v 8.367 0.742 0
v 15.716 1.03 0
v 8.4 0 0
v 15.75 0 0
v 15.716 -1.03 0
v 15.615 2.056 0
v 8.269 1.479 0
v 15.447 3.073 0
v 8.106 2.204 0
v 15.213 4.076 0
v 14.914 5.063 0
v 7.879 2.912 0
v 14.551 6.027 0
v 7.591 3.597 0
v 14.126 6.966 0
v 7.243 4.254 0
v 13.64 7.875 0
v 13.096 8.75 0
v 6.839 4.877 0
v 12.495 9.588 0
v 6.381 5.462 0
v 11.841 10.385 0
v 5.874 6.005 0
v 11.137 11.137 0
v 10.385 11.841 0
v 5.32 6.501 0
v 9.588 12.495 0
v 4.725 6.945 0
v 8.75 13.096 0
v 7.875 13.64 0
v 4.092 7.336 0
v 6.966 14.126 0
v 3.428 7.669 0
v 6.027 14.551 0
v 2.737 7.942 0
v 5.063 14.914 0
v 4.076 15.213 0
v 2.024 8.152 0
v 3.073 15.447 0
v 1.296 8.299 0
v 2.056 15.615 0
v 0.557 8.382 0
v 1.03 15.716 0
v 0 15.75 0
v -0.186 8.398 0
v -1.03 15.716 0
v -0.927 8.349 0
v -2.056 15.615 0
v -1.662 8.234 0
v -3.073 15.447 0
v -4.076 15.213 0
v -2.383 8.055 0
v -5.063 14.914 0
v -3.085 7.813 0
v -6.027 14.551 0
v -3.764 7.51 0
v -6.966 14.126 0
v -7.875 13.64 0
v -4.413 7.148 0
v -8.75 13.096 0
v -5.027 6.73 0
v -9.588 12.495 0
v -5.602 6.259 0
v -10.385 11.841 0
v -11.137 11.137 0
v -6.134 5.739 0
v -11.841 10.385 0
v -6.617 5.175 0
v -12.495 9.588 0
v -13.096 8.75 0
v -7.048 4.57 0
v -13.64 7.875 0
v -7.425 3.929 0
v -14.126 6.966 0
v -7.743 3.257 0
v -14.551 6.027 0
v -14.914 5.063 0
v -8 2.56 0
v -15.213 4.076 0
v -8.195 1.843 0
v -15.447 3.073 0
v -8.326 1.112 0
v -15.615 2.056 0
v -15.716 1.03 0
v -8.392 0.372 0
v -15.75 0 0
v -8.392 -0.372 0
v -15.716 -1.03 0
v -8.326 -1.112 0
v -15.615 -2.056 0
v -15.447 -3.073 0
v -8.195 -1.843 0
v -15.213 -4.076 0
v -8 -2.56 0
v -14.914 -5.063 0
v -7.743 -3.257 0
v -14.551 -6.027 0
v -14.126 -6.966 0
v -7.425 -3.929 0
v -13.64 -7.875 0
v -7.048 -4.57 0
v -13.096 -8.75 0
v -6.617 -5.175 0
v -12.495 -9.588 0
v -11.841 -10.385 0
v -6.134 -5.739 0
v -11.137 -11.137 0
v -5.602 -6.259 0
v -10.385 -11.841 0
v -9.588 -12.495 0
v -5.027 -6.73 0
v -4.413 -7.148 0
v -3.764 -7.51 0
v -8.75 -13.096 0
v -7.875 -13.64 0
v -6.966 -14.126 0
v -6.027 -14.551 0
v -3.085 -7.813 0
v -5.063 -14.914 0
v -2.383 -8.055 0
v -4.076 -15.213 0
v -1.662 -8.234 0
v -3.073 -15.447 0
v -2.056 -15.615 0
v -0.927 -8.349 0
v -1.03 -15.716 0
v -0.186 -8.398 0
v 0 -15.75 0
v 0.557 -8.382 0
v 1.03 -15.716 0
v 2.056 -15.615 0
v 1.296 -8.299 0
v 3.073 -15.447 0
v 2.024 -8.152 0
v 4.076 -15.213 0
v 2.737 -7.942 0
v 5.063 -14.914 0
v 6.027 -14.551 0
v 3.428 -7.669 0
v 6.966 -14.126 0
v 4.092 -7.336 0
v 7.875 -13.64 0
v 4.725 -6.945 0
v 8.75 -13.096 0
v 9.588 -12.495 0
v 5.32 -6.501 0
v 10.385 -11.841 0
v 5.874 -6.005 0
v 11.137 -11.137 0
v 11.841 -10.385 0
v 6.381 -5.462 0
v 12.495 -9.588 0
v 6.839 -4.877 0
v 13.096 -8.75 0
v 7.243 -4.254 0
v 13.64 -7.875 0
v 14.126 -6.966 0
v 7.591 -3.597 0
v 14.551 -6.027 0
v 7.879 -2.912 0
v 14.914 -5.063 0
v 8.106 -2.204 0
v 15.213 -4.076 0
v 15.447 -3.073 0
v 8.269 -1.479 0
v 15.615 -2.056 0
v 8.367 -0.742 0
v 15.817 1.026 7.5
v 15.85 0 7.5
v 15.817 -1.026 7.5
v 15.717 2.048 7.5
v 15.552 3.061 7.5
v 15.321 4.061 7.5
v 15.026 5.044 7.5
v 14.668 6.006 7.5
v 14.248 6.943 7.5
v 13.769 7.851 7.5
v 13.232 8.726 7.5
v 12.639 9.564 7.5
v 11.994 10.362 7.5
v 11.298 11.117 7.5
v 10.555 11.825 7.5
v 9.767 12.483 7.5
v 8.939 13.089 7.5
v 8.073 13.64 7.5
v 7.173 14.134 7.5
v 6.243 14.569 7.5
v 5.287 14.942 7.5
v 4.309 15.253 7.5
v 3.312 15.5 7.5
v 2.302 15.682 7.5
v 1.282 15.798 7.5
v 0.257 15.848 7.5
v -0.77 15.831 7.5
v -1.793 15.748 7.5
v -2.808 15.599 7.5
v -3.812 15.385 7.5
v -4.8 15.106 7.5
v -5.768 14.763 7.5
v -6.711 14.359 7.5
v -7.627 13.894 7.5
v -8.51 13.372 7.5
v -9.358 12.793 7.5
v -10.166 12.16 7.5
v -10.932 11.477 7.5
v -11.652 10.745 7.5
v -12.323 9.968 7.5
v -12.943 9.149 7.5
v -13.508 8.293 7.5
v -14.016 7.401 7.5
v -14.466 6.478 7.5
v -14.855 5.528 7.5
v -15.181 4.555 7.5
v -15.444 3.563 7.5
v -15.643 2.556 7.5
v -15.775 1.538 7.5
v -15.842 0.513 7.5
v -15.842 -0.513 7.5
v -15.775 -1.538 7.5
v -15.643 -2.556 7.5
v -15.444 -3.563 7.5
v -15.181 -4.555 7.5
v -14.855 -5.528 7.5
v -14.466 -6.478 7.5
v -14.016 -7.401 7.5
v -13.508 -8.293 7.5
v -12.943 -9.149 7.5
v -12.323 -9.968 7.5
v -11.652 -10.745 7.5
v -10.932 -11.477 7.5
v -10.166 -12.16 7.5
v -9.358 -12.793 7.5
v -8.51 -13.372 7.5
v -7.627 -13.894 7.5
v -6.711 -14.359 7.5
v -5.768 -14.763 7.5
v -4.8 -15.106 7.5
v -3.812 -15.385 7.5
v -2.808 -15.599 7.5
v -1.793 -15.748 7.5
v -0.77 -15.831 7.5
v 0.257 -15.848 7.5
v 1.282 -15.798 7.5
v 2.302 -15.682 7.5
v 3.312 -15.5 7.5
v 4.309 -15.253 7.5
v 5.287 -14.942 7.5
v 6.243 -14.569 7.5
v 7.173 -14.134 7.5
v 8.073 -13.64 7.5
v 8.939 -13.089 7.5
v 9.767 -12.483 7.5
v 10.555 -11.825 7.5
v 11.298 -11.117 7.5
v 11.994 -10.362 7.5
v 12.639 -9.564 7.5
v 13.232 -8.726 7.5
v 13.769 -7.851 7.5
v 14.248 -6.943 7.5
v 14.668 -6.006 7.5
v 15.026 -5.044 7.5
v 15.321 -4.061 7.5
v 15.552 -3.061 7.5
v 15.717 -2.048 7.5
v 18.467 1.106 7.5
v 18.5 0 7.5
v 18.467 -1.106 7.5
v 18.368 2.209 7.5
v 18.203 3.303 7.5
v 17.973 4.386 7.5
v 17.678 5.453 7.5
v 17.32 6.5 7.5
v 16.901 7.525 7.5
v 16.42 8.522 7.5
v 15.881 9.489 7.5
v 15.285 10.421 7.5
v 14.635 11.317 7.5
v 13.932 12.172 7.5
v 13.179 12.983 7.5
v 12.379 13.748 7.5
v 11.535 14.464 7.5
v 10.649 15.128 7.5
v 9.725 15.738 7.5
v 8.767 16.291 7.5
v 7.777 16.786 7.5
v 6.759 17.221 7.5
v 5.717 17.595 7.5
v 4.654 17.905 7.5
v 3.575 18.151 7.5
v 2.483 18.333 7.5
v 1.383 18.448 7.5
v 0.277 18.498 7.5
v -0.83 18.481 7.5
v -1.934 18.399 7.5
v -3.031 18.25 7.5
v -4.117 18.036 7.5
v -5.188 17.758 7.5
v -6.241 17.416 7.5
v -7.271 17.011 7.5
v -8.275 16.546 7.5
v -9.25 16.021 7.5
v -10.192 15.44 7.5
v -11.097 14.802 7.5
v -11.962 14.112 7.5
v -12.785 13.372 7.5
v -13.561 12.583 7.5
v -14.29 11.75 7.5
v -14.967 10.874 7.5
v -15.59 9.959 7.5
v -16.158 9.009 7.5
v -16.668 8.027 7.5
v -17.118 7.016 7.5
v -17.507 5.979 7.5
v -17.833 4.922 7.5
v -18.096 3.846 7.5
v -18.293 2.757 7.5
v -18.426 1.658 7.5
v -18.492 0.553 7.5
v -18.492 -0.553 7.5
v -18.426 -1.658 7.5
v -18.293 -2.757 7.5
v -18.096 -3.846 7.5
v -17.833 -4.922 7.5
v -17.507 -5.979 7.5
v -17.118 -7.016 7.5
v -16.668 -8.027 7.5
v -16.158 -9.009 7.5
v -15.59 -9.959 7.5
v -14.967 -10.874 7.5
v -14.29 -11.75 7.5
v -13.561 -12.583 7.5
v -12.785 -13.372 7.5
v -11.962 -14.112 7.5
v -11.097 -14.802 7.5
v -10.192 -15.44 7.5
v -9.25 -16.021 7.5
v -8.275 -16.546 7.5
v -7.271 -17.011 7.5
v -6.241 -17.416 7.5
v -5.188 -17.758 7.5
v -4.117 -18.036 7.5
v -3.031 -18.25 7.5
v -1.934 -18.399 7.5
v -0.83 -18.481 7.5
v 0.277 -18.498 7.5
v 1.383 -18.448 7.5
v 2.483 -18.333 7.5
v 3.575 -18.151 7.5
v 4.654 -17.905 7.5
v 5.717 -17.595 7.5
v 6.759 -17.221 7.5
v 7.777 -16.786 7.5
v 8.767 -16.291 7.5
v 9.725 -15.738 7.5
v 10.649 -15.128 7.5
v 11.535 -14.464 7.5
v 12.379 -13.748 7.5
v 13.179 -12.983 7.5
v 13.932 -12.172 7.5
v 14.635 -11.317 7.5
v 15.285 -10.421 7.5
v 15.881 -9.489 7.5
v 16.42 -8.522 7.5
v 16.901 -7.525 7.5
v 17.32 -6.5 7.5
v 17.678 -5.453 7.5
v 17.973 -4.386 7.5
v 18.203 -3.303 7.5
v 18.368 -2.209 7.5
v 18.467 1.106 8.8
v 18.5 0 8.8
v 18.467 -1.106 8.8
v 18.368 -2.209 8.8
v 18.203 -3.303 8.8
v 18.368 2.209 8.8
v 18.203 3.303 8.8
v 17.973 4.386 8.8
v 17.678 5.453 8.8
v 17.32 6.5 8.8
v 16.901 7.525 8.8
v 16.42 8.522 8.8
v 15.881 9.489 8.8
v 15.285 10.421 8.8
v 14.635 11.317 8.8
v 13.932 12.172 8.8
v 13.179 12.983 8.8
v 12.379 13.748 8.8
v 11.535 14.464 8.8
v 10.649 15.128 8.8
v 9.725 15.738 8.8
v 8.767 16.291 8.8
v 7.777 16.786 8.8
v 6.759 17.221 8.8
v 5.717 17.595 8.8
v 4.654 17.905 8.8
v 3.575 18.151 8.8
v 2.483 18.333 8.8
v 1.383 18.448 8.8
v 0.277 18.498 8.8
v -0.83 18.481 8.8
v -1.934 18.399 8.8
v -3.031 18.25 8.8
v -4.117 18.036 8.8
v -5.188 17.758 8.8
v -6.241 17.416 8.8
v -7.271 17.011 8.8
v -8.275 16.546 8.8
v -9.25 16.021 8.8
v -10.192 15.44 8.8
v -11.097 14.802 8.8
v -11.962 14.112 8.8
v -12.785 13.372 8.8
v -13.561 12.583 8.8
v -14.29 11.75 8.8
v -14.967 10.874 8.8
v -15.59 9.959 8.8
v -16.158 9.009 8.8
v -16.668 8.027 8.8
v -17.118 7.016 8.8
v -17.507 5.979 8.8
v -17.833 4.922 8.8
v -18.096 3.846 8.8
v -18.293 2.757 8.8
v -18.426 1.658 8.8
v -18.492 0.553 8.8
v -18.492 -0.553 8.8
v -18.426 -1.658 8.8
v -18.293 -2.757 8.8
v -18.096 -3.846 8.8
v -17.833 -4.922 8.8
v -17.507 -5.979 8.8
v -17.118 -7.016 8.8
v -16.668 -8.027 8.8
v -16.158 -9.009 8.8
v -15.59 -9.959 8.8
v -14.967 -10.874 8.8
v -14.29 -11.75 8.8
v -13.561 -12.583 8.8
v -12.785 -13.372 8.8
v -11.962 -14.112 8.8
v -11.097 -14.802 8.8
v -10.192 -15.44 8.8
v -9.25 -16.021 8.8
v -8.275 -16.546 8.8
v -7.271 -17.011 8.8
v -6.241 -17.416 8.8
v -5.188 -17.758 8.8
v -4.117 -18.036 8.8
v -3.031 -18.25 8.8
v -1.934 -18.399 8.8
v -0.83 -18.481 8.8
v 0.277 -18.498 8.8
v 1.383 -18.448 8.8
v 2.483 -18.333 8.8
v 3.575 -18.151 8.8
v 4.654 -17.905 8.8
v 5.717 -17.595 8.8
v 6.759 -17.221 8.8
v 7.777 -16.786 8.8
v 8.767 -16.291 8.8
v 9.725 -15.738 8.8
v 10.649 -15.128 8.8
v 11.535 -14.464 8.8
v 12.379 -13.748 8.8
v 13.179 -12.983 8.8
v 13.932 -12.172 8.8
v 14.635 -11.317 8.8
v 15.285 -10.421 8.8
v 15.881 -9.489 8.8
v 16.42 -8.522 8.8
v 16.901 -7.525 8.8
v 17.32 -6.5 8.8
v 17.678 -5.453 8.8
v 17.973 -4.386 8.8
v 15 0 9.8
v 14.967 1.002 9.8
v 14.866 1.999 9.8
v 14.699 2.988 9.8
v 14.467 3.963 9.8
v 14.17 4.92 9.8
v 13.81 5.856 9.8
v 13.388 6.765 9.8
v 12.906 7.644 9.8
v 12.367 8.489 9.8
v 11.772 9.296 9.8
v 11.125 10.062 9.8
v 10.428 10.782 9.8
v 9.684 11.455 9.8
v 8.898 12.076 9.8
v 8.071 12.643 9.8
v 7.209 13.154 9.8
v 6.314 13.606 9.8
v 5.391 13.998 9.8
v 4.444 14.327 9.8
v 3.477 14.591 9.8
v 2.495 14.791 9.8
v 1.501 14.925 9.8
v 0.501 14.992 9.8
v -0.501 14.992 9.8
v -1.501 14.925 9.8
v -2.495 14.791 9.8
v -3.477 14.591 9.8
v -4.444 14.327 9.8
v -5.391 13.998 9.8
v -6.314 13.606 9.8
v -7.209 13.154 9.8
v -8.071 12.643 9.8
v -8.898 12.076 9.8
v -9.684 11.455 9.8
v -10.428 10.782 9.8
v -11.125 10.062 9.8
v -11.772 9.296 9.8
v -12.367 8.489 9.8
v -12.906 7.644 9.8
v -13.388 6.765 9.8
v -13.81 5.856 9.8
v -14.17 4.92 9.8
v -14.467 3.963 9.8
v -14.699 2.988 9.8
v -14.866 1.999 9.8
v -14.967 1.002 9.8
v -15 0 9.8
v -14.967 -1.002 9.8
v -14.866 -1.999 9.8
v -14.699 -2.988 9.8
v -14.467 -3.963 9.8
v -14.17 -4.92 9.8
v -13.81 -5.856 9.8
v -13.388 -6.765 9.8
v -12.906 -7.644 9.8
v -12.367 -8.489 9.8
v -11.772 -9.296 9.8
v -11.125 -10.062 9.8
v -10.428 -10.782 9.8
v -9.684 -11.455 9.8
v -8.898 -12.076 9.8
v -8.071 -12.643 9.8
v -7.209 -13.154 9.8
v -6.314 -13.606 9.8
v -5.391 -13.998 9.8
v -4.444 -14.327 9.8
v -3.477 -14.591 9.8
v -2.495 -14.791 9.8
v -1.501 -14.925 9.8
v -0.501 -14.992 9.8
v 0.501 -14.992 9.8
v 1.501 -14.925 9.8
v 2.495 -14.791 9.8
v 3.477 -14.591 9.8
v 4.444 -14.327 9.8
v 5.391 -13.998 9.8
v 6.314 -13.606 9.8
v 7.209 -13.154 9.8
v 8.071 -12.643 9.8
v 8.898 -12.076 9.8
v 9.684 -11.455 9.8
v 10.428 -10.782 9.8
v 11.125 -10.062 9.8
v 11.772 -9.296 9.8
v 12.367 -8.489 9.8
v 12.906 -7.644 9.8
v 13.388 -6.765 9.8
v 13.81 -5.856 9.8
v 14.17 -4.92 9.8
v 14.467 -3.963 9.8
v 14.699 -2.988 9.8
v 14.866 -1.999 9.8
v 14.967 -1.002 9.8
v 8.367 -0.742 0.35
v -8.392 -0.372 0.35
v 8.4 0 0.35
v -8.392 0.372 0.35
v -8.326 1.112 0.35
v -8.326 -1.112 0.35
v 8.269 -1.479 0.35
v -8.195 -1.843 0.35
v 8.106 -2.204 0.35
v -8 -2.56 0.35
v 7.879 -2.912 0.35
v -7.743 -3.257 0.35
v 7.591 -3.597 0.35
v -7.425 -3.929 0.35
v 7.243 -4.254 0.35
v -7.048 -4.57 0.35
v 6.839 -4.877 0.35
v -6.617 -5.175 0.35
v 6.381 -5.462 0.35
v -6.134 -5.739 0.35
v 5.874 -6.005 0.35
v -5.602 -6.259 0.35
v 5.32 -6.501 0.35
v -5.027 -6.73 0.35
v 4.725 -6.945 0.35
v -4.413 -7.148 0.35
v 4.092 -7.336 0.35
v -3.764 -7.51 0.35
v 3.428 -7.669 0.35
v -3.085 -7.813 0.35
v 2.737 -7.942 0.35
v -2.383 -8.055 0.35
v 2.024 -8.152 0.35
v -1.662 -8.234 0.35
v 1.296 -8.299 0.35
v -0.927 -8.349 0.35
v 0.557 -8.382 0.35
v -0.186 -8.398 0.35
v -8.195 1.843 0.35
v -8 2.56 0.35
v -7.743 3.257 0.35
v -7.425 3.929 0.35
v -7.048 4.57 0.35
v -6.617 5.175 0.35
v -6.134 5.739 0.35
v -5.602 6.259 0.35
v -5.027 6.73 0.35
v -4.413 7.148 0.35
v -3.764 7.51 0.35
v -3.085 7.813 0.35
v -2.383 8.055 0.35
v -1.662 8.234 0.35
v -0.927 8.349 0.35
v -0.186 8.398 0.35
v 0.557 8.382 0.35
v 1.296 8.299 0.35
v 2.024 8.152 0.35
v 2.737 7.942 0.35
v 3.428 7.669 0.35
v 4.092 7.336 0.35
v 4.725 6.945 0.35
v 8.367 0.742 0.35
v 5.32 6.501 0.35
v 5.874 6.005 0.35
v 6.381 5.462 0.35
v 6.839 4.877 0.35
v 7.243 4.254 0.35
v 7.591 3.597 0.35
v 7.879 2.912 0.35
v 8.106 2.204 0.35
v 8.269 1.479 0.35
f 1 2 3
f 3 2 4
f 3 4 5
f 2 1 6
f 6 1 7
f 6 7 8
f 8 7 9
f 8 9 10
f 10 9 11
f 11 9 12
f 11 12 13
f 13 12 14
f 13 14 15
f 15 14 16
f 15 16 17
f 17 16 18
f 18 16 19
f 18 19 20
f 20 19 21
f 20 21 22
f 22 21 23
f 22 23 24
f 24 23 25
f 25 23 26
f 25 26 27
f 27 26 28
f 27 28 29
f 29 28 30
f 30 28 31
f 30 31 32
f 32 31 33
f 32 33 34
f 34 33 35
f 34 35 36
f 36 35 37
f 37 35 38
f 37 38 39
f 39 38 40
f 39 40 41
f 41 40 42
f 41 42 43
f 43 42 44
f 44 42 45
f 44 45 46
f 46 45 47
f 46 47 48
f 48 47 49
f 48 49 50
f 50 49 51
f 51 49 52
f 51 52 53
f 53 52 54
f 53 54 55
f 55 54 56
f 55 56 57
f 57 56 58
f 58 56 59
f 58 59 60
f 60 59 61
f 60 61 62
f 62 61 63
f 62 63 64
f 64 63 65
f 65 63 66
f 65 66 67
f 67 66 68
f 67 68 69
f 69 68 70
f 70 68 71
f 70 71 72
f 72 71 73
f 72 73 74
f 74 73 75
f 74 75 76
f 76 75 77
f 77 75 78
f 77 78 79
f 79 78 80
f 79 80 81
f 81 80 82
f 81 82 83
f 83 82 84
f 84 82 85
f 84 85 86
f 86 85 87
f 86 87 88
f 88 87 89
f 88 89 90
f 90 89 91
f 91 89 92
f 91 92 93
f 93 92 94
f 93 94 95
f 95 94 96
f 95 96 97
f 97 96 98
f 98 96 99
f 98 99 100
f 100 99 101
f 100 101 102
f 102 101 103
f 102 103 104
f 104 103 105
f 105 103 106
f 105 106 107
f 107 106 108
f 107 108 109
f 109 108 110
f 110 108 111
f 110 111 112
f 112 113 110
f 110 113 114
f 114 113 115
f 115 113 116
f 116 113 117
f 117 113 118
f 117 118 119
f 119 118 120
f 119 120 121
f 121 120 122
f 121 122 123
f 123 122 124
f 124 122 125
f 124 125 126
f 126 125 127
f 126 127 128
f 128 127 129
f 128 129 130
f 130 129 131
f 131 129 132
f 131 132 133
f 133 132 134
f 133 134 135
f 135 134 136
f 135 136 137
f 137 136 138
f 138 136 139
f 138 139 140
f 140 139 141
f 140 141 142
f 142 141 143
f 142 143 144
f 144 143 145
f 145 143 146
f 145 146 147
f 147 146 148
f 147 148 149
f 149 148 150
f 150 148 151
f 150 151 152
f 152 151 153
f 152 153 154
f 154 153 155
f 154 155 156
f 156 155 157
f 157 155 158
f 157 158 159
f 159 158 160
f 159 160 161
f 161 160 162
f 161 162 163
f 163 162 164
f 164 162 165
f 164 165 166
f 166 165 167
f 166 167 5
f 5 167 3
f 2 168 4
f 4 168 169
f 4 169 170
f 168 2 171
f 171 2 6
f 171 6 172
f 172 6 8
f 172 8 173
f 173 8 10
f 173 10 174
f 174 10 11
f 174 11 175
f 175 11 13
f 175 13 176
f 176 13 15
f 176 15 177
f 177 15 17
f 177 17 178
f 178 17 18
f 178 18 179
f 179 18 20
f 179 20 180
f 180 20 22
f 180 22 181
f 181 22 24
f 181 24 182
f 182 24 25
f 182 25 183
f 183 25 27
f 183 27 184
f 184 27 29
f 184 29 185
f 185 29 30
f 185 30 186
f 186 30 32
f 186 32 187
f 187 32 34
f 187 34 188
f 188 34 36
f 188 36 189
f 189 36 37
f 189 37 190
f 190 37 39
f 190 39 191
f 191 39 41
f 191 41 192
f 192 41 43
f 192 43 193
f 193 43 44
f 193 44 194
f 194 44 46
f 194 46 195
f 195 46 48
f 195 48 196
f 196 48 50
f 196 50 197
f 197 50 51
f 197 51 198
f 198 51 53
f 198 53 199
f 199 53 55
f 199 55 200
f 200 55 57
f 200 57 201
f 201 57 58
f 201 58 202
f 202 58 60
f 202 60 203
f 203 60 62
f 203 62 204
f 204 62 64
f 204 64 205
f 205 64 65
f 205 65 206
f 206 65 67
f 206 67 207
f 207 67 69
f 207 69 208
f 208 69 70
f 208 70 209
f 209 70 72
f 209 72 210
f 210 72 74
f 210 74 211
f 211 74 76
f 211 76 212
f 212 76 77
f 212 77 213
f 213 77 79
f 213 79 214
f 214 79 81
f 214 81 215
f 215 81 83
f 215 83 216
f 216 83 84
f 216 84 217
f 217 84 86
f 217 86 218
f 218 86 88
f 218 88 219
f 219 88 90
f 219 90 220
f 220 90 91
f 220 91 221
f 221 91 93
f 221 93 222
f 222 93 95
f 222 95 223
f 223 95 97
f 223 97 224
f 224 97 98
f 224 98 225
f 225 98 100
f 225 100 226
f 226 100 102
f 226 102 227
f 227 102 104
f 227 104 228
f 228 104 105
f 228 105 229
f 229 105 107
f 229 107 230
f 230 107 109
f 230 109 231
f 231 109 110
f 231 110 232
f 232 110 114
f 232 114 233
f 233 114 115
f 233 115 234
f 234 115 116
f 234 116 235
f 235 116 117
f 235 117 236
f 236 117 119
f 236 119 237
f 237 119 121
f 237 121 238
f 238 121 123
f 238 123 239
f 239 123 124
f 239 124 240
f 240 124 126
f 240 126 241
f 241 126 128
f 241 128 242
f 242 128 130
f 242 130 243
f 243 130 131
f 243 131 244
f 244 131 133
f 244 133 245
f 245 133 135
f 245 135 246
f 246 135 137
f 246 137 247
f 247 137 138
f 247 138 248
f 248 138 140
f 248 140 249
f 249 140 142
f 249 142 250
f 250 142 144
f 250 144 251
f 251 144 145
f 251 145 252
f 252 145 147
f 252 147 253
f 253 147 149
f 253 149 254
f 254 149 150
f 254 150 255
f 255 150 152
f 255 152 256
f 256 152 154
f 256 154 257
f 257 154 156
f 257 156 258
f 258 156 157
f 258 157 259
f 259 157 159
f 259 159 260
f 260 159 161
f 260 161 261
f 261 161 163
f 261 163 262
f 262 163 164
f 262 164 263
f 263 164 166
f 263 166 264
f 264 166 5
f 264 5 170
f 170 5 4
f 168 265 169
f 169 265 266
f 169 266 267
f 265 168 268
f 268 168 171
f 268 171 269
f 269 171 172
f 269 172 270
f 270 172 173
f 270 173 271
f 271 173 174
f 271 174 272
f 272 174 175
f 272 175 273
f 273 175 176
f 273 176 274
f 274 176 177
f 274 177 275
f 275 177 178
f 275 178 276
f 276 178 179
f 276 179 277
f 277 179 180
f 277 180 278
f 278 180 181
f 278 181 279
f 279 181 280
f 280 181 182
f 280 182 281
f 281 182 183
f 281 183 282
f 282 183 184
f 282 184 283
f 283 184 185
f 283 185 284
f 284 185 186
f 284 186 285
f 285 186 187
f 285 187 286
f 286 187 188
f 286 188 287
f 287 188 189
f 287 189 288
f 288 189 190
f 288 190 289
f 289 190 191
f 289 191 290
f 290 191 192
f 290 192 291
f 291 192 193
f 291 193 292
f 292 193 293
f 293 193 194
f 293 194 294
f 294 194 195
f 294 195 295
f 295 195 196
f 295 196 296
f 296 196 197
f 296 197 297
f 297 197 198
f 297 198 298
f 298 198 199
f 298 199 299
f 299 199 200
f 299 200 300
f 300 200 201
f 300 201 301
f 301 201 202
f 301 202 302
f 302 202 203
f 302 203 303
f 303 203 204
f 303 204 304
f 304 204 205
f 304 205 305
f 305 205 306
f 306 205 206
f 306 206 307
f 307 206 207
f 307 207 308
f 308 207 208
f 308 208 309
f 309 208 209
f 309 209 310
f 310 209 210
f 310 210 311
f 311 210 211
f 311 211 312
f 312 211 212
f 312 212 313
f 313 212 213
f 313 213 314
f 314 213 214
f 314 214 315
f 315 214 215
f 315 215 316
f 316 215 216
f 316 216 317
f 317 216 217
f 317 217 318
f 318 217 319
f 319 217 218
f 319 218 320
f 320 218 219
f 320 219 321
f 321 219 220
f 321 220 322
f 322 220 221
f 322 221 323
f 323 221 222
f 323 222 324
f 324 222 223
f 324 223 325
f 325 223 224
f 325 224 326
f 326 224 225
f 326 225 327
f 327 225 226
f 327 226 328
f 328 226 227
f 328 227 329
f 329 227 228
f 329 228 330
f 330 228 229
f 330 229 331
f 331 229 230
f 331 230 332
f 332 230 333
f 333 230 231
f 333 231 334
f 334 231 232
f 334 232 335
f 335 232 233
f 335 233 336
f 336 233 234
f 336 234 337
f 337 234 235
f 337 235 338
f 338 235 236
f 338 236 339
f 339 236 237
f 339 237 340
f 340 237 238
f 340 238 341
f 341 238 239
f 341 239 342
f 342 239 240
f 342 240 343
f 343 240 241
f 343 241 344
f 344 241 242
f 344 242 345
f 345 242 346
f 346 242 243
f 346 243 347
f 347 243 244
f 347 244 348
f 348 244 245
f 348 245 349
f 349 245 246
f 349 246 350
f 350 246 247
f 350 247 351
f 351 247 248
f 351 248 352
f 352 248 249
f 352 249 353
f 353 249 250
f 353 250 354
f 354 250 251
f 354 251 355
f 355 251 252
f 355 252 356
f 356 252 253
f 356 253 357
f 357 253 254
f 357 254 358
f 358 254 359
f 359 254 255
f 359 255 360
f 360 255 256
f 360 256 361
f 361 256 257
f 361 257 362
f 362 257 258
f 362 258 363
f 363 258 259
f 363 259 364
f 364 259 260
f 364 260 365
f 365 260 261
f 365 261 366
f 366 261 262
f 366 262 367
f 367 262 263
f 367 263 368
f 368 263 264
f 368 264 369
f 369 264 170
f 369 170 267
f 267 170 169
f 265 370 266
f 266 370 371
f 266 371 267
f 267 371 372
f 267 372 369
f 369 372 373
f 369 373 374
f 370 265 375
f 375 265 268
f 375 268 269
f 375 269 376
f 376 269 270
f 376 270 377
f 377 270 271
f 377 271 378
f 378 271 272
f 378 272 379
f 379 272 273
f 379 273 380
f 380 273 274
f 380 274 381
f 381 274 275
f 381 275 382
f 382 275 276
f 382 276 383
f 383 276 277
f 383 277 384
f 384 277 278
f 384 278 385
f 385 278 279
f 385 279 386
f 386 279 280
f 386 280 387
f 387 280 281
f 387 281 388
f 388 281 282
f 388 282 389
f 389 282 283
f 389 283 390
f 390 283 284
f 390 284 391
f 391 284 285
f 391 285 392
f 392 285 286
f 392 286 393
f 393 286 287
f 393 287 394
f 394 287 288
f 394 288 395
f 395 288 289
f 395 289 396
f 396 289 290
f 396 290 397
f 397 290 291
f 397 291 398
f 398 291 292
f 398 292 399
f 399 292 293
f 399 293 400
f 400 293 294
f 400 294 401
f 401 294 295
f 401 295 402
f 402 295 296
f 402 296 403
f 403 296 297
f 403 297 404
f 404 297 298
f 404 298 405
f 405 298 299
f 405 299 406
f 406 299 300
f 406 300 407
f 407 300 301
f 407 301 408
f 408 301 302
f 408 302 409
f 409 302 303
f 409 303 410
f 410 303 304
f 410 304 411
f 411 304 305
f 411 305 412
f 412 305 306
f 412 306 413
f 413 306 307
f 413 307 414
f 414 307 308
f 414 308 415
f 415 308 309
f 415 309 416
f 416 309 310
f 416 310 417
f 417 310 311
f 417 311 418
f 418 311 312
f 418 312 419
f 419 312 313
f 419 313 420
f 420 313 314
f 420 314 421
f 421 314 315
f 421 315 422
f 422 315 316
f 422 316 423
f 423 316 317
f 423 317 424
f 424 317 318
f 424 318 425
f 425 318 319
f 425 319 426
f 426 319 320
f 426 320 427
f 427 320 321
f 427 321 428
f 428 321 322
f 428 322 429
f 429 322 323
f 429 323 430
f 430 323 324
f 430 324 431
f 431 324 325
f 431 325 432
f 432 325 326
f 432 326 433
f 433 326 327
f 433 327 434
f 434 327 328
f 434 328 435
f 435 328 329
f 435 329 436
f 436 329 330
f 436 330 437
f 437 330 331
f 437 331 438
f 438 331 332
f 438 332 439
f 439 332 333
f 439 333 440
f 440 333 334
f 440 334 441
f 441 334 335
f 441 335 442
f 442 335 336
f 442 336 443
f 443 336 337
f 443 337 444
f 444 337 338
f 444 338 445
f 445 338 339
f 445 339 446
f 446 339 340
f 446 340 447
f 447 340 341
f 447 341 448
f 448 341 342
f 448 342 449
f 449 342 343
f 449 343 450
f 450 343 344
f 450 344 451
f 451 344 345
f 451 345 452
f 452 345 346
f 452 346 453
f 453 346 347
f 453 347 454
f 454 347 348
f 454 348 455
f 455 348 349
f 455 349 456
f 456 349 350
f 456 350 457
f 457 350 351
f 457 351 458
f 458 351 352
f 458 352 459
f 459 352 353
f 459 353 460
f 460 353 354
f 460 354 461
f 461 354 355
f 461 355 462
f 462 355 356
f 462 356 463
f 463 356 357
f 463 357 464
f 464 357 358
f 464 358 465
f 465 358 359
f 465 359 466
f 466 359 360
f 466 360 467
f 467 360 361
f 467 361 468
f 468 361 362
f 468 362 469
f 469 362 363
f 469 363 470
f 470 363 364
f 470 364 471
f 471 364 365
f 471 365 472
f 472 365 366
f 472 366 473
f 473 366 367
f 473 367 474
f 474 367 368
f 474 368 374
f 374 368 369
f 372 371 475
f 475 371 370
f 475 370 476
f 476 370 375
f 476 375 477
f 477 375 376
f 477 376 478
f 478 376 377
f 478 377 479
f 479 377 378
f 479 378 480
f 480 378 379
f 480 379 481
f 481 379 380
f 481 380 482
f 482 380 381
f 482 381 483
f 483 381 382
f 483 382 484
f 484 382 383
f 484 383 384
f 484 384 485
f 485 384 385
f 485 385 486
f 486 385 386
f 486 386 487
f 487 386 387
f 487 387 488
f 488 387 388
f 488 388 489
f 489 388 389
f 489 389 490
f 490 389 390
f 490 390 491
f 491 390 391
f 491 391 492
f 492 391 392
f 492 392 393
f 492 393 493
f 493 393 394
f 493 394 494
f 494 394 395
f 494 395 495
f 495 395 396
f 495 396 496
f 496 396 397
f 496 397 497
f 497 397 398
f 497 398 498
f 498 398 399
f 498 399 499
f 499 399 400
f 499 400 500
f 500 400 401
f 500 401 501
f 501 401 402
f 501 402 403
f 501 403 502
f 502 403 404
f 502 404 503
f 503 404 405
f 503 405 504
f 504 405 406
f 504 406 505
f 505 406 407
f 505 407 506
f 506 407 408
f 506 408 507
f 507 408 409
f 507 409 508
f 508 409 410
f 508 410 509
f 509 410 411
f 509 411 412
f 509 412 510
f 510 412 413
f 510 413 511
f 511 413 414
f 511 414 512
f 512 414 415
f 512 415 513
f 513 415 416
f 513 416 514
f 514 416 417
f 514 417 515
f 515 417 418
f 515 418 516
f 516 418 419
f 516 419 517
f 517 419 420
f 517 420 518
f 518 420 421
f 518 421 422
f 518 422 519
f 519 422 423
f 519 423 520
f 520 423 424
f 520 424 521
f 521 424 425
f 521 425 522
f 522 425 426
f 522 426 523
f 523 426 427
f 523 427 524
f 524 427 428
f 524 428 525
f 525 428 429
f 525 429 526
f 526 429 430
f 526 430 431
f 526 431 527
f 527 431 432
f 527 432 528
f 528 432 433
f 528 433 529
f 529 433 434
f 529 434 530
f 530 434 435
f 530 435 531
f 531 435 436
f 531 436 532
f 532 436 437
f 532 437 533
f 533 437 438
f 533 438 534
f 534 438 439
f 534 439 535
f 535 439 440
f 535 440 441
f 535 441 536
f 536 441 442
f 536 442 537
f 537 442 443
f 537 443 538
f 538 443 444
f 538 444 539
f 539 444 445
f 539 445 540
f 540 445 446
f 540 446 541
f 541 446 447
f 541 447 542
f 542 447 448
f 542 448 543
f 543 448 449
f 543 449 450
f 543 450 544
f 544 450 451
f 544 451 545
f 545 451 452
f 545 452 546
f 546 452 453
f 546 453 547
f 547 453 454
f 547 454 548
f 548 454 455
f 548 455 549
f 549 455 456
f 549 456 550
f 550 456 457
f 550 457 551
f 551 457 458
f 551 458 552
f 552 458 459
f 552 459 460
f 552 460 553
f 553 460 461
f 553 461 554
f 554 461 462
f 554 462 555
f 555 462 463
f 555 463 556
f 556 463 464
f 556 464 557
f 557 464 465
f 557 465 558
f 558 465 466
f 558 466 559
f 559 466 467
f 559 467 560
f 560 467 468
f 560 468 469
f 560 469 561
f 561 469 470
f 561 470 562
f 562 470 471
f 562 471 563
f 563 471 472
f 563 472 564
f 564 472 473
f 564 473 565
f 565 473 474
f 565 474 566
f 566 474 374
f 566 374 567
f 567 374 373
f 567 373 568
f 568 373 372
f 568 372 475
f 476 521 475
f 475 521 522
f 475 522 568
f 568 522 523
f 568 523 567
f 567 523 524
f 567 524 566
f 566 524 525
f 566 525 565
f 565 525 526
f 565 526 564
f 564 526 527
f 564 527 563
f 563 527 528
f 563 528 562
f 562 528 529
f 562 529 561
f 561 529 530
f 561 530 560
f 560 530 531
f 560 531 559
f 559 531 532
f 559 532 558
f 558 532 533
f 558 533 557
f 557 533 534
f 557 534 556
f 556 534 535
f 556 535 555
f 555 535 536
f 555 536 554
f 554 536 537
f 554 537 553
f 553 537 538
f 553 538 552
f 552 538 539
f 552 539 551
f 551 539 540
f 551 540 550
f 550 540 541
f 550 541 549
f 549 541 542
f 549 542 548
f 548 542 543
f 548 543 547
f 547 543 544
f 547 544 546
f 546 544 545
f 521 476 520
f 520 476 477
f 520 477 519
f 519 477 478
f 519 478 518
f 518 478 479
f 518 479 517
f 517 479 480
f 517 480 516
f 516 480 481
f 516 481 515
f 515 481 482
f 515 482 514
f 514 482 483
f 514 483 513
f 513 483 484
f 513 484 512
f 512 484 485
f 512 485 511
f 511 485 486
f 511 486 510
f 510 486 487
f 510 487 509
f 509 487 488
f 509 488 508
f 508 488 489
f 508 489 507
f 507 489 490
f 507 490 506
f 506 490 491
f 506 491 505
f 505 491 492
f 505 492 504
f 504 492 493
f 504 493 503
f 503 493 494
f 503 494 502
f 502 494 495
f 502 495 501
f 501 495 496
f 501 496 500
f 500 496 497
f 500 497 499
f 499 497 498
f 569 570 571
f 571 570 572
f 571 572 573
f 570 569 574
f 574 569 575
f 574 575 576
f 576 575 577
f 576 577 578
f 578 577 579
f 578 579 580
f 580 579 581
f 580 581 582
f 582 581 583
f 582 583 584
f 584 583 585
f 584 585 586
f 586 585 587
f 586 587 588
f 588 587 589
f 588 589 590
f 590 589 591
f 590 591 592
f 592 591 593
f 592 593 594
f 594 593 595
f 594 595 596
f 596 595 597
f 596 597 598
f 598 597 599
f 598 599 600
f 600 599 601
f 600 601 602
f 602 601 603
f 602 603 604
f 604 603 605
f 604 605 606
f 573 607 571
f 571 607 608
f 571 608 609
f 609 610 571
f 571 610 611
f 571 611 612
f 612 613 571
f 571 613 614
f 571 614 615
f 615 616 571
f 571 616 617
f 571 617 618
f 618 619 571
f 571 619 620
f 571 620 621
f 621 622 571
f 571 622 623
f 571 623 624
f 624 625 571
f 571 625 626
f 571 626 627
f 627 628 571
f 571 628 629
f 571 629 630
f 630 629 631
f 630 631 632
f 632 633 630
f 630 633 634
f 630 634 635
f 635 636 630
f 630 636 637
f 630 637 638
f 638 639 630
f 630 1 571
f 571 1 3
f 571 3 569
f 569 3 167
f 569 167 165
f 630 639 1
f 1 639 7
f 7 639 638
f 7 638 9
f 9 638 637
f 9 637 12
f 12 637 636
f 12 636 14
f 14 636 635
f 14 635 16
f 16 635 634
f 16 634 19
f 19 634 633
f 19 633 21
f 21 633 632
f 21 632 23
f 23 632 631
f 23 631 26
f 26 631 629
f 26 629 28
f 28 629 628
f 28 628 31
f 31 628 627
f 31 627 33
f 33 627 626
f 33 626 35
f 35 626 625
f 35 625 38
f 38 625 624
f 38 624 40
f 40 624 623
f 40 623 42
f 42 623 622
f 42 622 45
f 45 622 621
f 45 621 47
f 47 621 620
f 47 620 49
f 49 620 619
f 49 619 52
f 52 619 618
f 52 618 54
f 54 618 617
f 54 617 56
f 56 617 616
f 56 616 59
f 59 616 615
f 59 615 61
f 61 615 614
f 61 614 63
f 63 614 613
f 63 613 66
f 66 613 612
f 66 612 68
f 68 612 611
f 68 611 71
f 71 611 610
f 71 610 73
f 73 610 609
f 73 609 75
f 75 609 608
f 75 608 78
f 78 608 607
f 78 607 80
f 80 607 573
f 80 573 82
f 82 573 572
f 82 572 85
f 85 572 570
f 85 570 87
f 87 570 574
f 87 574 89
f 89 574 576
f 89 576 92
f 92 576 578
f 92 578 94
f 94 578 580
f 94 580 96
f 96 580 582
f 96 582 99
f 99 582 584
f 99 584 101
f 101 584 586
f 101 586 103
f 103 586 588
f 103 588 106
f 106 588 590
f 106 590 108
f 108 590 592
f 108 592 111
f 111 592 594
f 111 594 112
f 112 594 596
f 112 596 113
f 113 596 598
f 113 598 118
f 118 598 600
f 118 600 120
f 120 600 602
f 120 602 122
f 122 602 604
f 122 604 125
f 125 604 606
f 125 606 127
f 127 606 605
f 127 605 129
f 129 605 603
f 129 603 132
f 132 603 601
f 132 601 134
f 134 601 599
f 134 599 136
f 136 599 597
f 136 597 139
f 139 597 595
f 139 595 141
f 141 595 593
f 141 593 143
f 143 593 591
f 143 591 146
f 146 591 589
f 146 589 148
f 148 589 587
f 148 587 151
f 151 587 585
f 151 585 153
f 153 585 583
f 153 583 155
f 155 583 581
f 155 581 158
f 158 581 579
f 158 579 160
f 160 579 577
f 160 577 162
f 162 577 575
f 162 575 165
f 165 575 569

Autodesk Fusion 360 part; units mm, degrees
sketch "Sketch1" plane through (0, 0, 0) normal (0, 1, 0) x (1, 0, 0)
  line L0 (8.4, 0) -> (15.75, 0)
  line L1 (15.75, 0) -> (15.85, -7.5)
  line L2 (15.85, -7.5) -> (18.5, -7.5)
  line L3 (18.5, -7.5) -> (18.5, -8.8)
  line L4 (18.5, -8.8) -> (15, -9.8)
  line L5 (15, -9.8) -> (0, -9.8)
  line L6 (0, -9.8) -> (0, -0.35)
  line L7 (8.4, 0) -> (8.4, -0.35)
  line L8 (8.4, -0.35) -> (0, -0.35)
  dimension "d2" = 15.85
  dimension "d3" = 15.75
  dimension "d4" = 7.5
  dimension "d5" = 18.5
  dimension "d6" = 9.8
  dimension "d7" = 15
  dimension "d8" = 1.3
  dimension "d9" = 0.35
  dimension "d10" = 8.4
revolve "Revolve1" add sketch "Sketch1" angle 360 about axis through (0, 0, 9.8) along (0, 0, -1)
equation "d2 = ( 31.7 / 2 ) * 1 mm"
equation "d3 = ( 31.5 / 2 ) * 1 mm"
equation "d5 = ( 37 / 2 ) * 1 mm"
equation "d10 = ( 16.8 / 2 ) * 1 mm"
